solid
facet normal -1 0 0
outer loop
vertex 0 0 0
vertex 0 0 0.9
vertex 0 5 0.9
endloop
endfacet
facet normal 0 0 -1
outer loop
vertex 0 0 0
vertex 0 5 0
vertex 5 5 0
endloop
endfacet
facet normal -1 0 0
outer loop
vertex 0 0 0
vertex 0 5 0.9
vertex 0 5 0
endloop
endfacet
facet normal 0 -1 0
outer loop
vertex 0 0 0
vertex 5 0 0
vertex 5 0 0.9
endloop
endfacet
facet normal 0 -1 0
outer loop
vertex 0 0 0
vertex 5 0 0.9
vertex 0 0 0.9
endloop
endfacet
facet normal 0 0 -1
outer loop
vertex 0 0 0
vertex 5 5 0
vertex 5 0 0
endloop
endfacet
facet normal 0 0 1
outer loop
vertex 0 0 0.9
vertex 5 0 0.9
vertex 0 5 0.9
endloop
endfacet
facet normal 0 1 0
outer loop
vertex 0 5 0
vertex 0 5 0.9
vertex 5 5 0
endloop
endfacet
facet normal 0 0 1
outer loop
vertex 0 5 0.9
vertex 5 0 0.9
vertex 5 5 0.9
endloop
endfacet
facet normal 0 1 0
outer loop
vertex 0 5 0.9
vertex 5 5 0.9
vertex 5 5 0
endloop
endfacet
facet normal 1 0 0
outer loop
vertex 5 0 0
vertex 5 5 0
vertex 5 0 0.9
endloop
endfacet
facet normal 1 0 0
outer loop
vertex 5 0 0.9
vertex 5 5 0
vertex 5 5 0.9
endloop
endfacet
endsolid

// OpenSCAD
/* Warning, this is a very basic generator with a lot of approximation 
input data : [QFN, P8X, 5x5x0.9mm, 20, , C, C04-00139C]
generated by com.zoubworld.electronics.cad.model3d.Basic
Date : Sun Feb 15 10:50:48 CET 2026
*/

//body
color("black")
translate([0,0,0])
cube([5.0,5.0,0.9], center=false);
